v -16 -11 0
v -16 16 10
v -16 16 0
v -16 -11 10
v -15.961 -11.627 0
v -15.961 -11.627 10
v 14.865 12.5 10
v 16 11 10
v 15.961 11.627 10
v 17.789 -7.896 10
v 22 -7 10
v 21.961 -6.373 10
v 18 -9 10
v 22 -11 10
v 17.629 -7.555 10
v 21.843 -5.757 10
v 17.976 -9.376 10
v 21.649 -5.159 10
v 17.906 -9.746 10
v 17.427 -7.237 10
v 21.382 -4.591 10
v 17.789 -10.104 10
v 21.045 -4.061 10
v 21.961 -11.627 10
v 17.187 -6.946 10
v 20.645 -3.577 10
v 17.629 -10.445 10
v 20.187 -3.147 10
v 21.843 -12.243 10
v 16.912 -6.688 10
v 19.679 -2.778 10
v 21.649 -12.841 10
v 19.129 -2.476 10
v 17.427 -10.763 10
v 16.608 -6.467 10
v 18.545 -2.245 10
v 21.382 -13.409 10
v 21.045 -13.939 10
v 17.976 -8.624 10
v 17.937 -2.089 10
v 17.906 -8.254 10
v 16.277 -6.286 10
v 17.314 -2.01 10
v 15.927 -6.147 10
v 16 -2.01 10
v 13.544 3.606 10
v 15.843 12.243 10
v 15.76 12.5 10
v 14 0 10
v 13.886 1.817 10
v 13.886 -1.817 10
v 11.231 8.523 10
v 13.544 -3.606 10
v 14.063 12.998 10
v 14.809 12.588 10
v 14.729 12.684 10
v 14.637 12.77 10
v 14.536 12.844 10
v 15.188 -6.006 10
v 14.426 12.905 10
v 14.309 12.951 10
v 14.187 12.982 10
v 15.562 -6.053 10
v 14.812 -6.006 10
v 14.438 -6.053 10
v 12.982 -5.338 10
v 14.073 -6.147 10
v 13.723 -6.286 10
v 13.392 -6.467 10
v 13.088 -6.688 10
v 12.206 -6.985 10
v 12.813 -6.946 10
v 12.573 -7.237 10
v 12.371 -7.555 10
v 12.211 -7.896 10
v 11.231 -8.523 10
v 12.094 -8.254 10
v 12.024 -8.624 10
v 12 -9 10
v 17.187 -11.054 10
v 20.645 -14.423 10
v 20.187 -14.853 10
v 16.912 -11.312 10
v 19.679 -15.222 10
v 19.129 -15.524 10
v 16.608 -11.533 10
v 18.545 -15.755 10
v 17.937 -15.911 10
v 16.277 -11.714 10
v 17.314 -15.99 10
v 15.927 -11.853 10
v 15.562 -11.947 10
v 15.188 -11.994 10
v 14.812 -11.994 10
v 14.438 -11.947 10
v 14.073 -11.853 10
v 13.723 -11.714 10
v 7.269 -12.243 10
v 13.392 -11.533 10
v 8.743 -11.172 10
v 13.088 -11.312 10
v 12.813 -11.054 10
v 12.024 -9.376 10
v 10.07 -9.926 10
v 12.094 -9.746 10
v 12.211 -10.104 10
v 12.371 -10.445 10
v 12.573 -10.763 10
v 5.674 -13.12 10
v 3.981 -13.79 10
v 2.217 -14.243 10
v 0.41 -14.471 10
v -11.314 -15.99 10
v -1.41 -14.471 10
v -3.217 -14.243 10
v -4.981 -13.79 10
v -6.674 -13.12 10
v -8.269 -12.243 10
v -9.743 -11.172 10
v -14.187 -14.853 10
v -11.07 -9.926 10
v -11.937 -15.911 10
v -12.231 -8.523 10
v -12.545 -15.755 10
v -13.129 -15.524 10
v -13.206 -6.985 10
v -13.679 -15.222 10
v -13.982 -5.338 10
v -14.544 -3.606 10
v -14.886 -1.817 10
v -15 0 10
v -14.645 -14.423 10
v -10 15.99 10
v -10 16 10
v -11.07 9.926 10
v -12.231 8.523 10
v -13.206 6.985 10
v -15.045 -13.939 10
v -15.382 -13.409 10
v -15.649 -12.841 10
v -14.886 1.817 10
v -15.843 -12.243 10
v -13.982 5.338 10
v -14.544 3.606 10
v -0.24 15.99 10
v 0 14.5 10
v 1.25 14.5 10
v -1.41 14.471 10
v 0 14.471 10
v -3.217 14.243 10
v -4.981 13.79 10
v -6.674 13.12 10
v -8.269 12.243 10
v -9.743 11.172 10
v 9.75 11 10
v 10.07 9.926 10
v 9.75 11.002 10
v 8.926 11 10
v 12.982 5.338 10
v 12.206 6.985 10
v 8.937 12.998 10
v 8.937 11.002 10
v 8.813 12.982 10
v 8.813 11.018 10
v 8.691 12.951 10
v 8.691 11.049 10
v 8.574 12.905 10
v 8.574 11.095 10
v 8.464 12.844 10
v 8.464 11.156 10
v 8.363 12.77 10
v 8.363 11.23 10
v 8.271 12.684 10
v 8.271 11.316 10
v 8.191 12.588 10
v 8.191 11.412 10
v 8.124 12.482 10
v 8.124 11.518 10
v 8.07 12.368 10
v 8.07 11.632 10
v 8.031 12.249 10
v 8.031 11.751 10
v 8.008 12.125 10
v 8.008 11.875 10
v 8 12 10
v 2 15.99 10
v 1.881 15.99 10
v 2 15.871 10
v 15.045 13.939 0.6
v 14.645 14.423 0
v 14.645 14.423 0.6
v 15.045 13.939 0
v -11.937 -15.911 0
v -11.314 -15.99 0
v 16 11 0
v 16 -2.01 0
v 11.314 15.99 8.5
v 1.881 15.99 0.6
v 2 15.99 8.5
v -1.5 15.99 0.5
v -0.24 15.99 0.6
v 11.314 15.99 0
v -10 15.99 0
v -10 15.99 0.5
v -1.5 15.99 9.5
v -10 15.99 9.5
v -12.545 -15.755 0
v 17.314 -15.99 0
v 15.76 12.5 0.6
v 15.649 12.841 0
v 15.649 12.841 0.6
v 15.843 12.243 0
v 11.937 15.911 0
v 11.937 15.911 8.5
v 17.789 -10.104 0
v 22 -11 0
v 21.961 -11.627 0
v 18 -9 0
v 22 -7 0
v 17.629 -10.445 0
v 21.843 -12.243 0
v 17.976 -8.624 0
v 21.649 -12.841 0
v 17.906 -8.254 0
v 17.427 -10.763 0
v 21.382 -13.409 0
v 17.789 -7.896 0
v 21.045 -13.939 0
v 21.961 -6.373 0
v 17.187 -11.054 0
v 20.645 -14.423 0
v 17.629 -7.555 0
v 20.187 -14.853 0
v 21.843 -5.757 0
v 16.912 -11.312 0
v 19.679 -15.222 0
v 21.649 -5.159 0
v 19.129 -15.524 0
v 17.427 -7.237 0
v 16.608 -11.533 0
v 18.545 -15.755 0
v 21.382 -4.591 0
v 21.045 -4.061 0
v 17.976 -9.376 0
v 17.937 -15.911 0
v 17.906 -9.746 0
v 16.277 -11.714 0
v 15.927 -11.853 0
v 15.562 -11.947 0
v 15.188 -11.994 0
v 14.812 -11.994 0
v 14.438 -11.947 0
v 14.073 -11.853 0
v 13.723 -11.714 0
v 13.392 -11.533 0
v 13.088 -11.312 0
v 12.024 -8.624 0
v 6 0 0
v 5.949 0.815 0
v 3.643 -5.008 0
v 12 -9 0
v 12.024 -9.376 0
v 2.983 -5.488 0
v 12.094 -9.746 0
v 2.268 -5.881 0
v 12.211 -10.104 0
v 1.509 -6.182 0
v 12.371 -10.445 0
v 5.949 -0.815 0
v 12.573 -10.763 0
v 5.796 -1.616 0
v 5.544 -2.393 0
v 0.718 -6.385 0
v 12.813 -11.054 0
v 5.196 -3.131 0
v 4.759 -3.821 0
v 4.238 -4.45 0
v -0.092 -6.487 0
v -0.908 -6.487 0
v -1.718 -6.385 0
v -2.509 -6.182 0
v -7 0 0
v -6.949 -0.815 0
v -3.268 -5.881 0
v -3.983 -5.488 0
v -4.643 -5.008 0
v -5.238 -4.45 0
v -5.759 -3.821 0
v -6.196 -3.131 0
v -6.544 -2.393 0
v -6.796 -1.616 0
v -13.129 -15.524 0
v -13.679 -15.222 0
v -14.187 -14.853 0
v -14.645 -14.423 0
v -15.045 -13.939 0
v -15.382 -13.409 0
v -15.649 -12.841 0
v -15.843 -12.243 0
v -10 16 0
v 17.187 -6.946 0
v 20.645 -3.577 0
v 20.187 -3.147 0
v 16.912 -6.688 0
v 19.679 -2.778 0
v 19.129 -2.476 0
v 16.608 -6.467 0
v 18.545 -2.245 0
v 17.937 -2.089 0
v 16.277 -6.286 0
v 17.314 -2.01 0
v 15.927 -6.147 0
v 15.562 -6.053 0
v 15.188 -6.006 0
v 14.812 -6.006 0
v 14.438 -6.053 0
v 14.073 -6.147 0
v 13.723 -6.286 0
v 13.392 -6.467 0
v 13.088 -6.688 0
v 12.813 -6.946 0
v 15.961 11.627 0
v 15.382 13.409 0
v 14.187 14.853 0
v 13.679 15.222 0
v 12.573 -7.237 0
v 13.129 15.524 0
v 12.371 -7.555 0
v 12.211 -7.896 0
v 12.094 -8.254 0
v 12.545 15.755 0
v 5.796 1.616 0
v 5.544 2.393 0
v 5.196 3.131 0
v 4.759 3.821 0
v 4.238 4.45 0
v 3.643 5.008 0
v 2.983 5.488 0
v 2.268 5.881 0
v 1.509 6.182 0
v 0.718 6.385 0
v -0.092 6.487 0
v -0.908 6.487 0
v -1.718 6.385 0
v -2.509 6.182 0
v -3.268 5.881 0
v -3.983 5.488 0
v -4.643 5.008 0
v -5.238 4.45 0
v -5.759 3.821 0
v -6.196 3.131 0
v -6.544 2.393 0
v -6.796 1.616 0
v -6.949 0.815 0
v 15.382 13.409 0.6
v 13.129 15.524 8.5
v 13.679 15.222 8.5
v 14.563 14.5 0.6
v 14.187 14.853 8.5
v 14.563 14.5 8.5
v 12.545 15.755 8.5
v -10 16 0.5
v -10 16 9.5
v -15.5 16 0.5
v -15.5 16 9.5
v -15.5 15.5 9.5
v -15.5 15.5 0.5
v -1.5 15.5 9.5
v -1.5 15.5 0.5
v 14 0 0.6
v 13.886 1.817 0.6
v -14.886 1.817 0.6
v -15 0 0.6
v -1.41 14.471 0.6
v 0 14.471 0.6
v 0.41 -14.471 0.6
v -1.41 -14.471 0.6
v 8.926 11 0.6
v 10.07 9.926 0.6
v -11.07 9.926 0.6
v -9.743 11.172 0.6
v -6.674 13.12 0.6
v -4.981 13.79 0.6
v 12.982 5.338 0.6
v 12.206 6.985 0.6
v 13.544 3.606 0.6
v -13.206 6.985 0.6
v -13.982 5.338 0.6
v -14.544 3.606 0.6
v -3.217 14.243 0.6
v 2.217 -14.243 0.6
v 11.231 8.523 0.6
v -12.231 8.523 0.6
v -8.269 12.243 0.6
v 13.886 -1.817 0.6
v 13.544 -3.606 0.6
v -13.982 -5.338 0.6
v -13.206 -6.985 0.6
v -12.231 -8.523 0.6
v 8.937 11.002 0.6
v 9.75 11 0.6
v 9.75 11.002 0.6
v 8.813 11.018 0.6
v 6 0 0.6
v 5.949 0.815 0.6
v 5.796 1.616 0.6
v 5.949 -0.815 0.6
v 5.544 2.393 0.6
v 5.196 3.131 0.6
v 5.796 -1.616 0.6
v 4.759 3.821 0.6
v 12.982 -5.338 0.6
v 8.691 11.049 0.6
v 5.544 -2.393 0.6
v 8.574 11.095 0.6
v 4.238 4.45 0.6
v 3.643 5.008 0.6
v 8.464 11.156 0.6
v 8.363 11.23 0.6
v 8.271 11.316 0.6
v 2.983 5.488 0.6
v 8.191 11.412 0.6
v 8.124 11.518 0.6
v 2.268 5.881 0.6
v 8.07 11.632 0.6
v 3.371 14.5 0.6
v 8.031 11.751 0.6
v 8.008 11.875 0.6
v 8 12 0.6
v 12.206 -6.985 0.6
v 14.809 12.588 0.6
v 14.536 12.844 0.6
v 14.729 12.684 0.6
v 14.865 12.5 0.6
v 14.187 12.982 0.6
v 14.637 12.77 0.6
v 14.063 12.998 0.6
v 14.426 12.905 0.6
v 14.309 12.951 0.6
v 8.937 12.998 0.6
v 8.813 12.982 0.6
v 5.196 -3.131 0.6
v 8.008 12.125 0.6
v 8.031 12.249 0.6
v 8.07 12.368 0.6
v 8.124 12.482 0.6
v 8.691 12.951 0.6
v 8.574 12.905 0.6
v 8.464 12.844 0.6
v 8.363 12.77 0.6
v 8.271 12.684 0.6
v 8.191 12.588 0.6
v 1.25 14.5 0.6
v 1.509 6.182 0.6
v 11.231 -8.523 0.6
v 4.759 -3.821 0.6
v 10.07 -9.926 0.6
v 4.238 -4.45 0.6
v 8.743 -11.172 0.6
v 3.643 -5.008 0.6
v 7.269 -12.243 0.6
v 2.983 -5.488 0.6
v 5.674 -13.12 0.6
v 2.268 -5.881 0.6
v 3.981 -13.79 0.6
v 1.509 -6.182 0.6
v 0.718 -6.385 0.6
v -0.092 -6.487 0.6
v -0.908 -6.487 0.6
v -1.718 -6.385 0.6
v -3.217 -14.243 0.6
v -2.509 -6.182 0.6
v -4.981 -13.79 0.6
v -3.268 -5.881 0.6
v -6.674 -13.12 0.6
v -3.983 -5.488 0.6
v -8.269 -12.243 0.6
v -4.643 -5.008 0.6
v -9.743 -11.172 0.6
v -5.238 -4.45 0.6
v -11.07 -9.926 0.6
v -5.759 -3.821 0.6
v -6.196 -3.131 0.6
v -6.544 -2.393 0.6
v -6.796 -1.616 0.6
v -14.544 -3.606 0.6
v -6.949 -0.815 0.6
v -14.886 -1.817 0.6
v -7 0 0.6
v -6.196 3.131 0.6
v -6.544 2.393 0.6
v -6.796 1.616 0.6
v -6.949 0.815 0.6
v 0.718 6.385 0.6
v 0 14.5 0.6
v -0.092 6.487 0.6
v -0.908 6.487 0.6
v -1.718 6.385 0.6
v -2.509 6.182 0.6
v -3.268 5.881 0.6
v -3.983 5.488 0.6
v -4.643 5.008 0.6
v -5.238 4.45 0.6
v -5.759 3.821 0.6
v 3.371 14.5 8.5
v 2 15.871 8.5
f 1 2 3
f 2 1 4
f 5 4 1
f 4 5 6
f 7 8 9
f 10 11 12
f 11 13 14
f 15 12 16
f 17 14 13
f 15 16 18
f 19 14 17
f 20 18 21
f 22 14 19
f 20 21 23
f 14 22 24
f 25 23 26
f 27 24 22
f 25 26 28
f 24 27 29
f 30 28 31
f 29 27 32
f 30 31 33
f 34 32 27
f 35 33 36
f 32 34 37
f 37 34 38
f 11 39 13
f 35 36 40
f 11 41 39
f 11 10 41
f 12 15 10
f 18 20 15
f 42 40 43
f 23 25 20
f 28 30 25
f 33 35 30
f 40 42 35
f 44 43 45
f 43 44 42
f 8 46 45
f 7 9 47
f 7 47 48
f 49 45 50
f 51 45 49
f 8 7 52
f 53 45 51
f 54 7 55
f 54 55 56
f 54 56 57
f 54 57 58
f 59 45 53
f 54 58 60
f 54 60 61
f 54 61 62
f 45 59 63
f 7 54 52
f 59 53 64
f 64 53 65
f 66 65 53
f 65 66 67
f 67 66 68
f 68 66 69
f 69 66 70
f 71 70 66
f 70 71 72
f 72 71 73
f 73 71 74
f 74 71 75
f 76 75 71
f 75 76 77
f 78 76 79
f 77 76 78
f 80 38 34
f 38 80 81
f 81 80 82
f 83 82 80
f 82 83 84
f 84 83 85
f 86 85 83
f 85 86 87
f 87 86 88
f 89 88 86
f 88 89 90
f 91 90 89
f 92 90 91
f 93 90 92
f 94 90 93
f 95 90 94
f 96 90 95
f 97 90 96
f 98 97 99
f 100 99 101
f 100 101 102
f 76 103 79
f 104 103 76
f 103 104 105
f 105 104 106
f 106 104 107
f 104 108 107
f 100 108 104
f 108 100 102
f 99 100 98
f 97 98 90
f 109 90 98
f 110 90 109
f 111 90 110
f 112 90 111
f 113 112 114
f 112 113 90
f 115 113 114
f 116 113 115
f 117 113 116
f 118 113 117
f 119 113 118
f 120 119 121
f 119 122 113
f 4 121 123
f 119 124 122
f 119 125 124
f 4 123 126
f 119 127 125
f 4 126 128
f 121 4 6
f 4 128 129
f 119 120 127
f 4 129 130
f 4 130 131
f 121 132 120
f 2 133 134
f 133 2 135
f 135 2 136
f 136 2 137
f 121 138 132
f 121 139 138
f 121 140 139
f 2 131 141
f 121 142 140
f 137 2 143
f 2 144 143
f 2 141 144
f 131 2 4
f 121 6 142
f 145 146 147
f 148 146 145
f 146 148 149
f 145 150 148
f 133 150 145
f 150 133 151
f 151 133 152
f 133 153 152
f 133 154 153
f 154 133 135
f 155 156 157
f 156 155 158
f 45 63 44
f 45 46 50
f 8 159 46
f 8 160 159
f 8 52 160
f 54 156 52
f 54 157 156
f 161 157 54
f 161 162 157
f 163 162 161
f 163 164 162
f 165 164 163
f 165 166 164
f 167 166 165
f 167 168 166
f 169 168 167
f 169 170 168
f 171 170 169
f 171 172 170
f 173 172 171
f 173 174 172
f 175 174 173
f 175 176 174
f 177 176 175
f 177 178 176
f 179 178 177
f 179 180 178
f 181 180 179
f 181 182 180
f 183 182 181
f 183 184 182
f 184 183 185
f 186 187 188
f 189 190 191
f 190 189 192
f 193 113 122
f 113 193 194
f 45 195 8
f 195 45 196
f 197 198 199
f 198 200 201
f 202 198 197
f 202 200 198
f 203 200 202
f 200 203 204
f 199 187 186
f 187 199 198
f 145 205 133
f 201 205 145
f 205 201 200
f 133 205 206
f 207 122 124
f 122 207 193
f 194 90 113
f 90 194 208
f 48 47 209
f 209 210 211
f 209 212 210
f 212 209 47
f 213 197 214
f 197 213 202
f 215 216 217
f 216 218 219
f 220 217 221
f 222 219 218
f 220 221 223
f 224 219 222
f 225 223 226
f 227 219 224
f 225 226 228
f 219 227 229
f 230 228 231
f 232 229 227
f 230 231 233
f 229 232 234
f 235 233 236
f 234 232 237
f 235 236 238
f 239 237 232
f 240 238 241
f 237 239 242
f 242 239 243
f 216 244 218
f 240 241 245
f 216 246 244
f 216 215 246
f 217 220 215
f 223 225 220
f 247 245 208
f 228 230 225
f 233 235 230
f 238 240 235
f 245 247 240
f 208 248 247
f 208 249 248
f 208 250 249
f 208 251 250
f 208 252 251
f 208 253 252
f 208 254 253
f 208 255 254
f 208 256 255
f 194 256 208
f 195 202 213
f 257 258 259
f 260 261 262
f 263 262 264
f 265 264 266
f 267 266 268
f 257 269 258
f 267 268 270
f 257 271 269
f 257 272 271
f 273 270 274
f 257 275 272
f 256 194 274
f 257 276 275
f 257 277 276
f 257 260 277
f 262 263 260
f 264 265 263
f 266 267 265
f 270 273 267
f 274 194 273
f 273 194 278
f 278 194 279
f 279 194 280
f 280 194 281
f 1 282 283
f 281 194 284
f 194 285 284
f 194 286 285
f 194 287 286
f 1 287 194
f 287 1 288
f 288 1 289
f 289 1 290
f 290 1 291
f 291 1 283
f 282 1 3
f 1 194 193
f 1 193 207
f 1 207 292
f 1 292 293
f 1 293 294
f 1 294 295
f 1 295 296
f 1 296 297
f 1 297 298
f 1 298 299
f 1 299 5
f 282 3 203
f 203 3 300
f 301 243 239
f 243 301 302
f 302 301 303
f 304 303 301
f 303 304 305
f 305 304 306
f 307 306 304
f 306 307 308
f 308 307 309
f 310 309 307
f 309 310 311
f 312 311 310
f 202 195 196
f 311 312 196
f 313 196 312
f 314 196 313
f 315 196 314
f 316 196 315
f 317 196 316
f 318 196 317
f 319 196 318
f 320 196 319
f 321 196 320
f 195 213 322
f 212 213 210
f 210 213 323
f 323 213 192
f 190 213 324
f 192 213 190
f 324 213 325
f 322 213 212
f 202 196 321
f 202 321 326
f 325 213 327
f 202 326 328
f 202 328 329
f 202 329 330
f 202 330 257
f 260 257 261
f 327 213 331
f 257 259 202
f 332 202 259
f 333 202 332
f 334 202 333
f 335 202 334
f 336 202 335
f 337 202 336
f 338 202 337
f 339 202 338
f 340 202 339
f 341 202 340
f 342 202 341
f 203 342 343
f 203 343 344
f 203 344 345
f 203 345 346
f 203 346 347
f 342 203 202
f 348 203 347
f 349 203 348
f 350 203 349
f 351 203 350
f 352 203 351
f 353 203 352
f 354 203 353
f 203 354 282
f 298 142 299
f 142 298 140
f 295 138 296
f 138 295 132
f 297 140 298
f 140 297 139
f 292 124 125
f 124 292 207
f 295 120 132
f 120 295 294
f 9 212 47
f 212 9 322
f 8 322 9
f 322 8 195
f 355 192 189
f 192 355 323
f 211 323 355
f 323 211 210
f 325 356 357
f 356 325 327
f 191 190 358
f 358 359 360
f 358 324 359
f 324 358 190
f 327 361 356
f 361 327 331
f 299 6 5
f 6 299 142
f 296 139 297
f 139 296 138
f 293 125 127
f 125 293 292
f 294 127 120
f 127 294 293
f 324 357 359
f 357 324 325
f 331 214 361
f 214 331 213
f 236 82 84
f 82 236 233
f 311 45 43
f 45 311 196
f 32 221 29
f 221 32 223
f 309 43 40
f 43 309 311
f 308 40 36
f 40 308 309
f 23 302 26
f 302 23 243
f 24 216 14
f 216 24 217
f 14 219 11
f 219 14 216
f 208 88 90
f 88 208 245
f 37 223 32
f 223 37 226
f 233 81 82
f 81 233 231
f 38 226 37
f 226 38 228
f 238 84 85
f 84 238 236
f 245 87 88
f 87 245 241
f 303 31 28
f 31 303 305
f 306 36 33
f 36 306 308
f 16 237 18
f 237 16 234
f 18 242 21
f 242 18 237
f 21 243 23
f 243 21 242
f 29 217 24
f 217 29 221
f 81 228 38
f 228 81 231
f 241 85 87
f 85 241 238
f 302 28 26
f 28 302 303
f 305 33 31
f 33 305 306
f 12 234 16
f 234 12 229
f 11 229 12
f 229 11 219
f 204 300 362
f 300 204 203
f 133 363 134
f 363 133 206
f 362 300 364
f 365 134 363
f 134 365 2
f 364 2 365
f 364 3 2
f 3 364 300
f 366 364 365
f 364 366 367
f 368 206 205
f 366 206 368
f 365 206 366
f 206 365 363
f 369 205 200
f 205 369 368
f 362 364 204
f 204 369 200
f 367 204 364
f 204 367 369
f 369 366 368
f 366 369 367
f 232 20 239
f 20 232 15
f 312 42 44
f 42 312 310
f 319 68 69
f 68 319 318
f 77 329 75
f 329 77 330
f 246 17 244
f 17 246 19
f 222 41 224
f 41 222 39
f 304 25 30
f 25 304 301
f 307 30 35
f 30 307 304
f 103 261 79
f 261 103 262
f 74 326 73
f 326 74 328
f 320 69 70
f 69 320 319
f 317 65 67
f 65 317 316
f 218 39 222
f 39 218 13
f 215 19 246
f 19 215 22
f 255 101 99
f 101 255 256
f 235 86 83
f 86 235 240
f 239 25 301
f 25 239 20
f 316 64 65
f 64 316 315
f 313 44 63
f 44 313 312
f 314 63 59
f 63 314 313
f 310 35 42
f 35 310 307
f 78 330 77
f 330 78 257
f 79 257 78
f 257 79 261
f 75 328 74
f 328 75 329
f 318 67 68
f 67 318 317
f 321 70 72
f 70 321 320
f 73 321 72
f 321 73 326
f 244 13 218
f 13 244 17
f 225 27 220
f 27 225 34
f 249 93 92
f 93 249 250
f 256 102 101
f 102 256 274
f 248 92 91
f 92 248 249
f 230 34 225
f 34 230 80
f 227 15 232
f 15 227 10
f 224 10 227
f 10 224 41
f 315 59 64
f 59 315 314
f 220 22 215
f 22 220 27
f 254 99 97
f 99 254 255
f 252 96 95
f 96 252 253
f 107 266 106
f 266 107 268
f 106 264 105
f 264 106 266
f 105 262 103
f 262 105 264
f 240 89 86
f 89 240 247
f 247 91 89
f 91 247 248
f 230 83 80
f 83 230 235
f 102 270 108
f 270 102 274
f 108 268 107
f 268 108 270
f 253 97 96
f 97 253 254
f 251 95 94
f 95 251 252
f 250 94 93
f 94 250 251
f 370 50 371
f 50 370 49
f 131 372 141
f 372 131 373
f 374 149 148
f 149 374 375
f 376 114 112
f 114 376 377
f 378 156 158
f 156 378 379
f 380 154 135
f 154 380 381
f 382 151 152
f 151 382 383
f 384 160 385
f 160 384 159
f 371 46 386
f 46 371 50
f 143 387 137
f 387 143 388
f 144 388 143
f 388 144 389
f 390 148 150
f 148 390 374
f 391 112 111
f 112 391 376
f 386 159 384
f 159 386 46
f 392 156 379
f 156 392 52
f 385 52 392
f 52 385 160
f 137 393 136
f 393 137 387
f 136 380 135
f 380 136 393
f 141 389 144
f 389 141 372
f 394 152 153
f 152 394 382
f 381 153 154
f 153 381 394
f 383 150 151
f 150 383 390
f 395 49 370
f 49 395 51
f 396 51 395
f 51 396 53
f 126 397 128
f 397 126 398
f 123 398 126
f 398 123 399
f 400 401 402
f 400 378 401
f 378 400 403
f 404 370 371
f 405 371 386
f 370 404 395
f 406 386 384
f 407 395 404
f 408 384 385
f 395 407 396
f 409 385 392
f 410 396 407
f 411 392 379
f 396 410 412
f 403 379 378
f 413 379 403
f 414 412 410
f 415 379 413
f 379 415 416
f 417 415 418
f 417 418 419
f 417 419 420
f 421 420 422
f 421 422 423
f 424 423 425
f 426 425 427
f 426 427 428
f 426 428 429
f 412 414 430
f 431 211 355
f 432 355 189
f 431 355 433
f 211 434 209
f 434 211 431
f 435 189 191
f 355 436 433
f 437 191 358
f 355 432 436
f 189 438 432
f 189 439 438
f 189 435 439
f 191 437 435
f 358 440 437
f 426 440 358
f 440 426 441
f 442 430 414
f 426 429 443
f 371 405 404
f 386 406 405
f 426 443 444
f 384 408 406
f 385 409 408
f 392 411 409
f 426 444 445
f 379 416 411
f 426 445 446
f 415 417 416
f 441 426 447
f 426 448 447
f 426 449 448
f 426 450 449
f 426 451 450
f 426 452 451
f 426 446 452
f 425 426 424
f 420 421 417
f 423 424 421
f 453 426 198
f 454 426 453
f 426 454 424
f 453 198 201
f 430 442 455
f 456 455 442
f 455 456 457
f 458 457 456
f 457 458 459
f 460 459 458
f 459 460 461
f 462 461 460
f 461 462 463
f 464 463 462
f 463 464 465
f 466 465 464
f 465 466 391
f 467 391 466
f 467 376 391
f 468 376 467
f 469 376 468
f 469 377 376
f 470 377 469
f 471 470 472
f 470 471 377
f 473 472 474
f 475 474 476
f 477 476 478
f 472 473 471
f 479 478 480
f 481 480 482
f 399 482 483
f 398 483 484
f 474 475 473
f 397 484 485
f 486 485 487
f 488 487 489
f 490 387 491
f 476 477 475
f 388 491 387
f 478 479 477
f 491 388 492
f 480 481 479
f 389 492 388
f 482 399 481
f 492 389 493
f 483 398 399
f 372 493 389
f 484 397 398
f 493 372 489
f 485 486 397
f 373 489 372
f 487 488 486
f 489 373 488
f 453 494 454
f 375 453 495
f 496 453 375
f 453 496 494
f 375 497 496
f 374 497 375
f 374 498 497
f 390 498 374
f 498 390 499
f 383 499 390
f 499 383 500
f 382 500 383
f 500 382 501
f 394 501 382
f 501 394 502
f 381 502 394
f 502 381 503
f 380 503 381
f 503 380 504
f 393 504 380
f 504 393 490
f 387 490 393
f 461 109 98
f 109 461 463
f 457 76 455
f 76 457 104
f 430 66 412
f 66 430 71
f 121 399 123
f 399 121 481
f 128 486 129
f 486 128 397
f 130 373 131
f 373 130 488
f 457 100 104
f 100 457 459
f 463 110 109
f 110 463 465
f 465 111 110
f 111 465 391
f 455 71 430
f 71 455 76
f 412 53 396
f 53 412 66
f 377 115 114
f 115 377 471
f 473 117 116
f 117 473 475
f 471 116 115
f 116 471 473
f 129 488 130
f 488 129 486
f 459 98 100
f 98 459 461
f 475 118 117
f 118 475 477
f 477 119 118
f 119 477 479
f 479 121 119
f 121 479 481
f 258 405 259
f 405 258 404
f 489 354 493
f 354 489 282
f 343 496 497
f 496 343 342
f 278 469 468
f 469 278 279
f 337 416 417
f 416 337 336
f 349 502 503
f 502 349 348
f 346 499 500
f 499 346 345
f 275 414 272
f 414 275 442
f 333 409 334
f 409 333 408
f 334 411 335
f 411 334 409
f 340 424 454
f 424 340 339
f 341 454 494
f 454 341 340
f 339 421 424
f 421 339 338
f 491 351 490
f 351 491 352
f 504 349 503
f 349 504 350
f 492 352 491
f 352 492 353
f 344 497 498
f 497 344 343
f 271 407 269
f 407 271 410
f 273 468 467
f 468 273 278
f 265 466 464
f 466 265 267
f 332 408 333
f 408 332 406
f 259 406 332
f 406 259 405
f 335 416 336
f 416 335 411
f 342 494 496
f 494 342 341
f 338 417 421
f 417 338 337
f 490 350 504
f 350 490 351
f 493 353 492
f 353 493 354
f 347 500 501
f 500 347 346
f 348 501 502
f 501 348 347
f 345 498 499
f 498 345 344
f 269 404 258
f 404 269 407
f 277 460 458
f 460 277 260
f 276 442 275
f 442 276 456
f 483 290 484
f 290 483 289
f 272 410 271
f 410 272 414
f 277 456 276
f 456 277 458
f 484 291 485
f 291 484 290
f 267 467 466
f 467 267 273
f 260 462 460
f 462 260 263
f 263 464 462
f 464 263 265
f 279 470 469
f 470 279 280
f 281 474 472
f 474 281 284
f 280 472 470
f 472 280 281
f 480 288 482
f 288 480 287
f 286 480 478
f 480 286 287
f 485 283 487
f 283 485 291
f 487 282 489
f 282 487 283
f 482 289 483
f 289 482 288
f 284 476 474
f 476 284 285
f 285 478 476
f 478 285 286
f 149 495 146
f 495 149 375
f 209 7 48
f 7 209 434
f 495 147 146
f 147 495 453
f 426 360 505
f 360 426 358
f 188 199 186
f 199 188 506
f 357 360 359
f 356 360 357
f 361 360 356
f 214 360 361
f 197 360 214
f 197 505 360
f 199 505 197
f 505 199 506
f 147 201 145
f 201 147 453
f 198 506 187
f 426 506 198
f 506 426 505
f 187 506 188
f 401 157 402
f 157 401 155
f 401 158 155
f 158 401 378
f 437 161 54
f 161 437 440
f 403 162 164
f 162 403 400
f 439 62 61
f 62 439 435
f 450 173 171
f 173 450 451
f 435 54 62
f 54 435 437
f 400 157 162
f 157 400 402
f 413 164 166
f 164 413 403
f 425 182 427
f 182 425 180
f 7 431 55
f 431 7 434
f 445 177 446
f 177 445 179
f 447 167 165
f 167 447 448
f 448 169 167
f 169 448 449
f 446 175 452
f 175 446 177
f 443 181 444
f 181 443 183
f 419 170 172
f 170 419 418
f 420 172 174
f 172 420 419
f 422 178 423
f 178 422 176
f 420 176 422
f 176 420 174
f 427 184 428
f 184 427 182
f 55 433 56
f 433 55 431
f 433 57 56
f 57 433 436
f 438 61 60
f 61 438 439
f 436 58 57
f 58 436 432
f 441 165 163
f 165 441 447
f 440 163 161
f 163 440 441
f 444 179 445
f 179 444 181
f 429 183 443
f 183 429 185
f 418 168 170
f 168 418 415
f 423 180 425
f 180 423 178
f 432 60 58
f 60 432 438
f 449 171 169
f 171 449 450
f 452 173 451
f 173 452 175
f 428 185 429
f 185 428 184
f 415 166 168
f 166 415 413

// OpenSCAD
$fn = 50;


union() {
	difference() {
		union() {
			translate(v = [0, 0, 0]) {
				rotate(a = [0, 0, 0]) {
					hull() {
						translate(v = [-11.0000000000, 11.0000000000, 0]) {
							rotate(a = [0, 0, 0]) {
								translate(v = [0, 0, 0]) {
									rotate(a = [0, 0, 0]) {
										cylinder(h = 10, r = 5);
									}
								}
							}
						}
						translate(v = [11.0000000000, 11.0000000000, 0]) {
							rotate(a = [0, 0, 0]) {
								translate(v = [0, 0, 0]) {
									rotate(a = [0, 0, 0]) {
										cylinder(h = 10, r = 5);
									}
								}
							}
						}
						translate(v = [-11.0000000000, -11.0000000000, 0]) {
							rotate(a = [0, 0, 0]) {
								translate(v = [0, 0, 0]) {
									rotate(a = [0, 0, 0]) {
										cylinder(h = 10, r = 5);
									}
								}
							}
						}
						translate(v = [11.0000000000, -11.0000000000, 0]) {
							rotate(a = [0, 0, 0]) {
								translate(v = [0, 0, 0]) {
									rotate(a = [0, 0, 0]) {
										cylinder(h = 10, r = 5);
									}
								}
							}
						}
					}
				}
			}
			translate(v = [7.5000000000, -9.0000000000, 0]) {
				rotate(a = [0, 0, 0]) {
					hull() {
						translate(v = [-9.5000000000, 2.0000000000, 0]) {
							rotate(a = [0, 0, 0]) {
								translate(v = [0, 0, 0]) {
									rotate(a = [0, 0, 0]) {
										cylinder(h = 10, r = 5);
									}
								}
							}
						}
						translate(v = [9.5000000000, 2.0000000000, 0]) {
							rotate(a = [0, 0, 0]) {
								translate(v = [0, 0, 0]) {
									rotate(a = [0, 0, 0]) {
										cylinder(h = 10, r = 5);
									}
								}
							}
						}
						translate(v = [-9.5000000000, -2.0000000000, 0]) {
							rotate(a = [0, 0, 0]) {
								translate(v = [0, 0, 0]) {
									rotate(a = [0, 0, 0]) {
										cylinder(h = 10, r = 5);
									}
								}
							}
						}
						translate(v = [9.5000000000, -2.0000000000, 0]) {
							rotate(a = [0, 0, 0]) {
								translate(v = [0, 0, 0]) {
									rotate(a = [0, 0, 0]) {
										cylinder(h = 10, r = 5);
									}
								}
							}
						}
					}
				}
			}
			translate(v = [-16.0000000000, 10.0000000000, 0]) {
				rotate(a = [0, 0, 0]) {
					cube(size = [6, 6, 10]);
				}
			}
		}
		union() {
			translate(v = [-15.5000000000, 15.5000000000, 0.5000000000]) {
				rotate(a = [0, 0, 0]) {
					cube(size = [14, 0.5000000000, 9.0000000000]);
				}
			}
			translate(v = [15.0000000000, -9.0000000000, -125.0000000000]) {
				rotate(a = [0, 0, 0]) {
					cylinder(h = 250, r = 3.0000000000);
				}
			}
			translate(v = [-0.5000000000, 0.0000000000, 0.6000000000]) {
				rotate(a = [0, 0, 0]) {
					cylinder(h = 12.4000000000, r = 14.5000000000);
				}
			}
			translate(v = [-0.5000000000, 0.0000000000, -5.0000000000]) {
				rotate(a = [0, 0, 0]) {
					cylinder(h = 10, r = 6.5000000000);
				}
			}
			translate(v = [0.0000000000, 12.5000000000, 0.6000000000]) {
				rotate(a = [0, 0, 0]) {
					cube(size = [16.0000000000, 2, 12.4000000000]);
				}
			}
			translate(v = [2.0000000000, 12.5000000000, 8.5000000000]) {
				rotate(a = [0, 0, 0]) {
					cube(size = [14.0000000000, 5, 1.5000000000]);
				}
			}
			translate(v = [-3.0000000000, 18.7500000000, 0.6000000000]) {
				rotate(a = [0, 0, -45]) {
					cube(size = [10, 1.5000000000, 12.4000000000]);
				}
			}
			translate(v = [2.2500000000, 11.0000000000, 0.6000000000]) {
				rotate(a = [0, 0, 0]) {
					cube(size = [7.5000000000, 2, 9.4000000000]);
				}
			}
		}
	}
	union() {
		translate(v = [11.5000000000, 12, 0]) {
			rotate(a = [0, 0, 0]) {
				hull() {
					translate(v = [2.5000000000, 0, 0]) {
						rotate(a = [0, 0, 0]) {
							translate(v = [0, 0, 0]) {
								rotate(a = [0, 0, 0]) {
									cylinder(h = 10, r = 1.0000000000);
								}
							}
						}
					}
					translate(v = [-2.5000000000, 0, 0]) {
						rotate(a = [0, 0, 0]) {
							translate(v = [0, 0, 0]) {
								rotate(a = [0, 0, 0]) {
									cylinder(h = 10, r = 1.0000000000);
								}
							}
						}
					}
				}
			}
		}
	}
}
